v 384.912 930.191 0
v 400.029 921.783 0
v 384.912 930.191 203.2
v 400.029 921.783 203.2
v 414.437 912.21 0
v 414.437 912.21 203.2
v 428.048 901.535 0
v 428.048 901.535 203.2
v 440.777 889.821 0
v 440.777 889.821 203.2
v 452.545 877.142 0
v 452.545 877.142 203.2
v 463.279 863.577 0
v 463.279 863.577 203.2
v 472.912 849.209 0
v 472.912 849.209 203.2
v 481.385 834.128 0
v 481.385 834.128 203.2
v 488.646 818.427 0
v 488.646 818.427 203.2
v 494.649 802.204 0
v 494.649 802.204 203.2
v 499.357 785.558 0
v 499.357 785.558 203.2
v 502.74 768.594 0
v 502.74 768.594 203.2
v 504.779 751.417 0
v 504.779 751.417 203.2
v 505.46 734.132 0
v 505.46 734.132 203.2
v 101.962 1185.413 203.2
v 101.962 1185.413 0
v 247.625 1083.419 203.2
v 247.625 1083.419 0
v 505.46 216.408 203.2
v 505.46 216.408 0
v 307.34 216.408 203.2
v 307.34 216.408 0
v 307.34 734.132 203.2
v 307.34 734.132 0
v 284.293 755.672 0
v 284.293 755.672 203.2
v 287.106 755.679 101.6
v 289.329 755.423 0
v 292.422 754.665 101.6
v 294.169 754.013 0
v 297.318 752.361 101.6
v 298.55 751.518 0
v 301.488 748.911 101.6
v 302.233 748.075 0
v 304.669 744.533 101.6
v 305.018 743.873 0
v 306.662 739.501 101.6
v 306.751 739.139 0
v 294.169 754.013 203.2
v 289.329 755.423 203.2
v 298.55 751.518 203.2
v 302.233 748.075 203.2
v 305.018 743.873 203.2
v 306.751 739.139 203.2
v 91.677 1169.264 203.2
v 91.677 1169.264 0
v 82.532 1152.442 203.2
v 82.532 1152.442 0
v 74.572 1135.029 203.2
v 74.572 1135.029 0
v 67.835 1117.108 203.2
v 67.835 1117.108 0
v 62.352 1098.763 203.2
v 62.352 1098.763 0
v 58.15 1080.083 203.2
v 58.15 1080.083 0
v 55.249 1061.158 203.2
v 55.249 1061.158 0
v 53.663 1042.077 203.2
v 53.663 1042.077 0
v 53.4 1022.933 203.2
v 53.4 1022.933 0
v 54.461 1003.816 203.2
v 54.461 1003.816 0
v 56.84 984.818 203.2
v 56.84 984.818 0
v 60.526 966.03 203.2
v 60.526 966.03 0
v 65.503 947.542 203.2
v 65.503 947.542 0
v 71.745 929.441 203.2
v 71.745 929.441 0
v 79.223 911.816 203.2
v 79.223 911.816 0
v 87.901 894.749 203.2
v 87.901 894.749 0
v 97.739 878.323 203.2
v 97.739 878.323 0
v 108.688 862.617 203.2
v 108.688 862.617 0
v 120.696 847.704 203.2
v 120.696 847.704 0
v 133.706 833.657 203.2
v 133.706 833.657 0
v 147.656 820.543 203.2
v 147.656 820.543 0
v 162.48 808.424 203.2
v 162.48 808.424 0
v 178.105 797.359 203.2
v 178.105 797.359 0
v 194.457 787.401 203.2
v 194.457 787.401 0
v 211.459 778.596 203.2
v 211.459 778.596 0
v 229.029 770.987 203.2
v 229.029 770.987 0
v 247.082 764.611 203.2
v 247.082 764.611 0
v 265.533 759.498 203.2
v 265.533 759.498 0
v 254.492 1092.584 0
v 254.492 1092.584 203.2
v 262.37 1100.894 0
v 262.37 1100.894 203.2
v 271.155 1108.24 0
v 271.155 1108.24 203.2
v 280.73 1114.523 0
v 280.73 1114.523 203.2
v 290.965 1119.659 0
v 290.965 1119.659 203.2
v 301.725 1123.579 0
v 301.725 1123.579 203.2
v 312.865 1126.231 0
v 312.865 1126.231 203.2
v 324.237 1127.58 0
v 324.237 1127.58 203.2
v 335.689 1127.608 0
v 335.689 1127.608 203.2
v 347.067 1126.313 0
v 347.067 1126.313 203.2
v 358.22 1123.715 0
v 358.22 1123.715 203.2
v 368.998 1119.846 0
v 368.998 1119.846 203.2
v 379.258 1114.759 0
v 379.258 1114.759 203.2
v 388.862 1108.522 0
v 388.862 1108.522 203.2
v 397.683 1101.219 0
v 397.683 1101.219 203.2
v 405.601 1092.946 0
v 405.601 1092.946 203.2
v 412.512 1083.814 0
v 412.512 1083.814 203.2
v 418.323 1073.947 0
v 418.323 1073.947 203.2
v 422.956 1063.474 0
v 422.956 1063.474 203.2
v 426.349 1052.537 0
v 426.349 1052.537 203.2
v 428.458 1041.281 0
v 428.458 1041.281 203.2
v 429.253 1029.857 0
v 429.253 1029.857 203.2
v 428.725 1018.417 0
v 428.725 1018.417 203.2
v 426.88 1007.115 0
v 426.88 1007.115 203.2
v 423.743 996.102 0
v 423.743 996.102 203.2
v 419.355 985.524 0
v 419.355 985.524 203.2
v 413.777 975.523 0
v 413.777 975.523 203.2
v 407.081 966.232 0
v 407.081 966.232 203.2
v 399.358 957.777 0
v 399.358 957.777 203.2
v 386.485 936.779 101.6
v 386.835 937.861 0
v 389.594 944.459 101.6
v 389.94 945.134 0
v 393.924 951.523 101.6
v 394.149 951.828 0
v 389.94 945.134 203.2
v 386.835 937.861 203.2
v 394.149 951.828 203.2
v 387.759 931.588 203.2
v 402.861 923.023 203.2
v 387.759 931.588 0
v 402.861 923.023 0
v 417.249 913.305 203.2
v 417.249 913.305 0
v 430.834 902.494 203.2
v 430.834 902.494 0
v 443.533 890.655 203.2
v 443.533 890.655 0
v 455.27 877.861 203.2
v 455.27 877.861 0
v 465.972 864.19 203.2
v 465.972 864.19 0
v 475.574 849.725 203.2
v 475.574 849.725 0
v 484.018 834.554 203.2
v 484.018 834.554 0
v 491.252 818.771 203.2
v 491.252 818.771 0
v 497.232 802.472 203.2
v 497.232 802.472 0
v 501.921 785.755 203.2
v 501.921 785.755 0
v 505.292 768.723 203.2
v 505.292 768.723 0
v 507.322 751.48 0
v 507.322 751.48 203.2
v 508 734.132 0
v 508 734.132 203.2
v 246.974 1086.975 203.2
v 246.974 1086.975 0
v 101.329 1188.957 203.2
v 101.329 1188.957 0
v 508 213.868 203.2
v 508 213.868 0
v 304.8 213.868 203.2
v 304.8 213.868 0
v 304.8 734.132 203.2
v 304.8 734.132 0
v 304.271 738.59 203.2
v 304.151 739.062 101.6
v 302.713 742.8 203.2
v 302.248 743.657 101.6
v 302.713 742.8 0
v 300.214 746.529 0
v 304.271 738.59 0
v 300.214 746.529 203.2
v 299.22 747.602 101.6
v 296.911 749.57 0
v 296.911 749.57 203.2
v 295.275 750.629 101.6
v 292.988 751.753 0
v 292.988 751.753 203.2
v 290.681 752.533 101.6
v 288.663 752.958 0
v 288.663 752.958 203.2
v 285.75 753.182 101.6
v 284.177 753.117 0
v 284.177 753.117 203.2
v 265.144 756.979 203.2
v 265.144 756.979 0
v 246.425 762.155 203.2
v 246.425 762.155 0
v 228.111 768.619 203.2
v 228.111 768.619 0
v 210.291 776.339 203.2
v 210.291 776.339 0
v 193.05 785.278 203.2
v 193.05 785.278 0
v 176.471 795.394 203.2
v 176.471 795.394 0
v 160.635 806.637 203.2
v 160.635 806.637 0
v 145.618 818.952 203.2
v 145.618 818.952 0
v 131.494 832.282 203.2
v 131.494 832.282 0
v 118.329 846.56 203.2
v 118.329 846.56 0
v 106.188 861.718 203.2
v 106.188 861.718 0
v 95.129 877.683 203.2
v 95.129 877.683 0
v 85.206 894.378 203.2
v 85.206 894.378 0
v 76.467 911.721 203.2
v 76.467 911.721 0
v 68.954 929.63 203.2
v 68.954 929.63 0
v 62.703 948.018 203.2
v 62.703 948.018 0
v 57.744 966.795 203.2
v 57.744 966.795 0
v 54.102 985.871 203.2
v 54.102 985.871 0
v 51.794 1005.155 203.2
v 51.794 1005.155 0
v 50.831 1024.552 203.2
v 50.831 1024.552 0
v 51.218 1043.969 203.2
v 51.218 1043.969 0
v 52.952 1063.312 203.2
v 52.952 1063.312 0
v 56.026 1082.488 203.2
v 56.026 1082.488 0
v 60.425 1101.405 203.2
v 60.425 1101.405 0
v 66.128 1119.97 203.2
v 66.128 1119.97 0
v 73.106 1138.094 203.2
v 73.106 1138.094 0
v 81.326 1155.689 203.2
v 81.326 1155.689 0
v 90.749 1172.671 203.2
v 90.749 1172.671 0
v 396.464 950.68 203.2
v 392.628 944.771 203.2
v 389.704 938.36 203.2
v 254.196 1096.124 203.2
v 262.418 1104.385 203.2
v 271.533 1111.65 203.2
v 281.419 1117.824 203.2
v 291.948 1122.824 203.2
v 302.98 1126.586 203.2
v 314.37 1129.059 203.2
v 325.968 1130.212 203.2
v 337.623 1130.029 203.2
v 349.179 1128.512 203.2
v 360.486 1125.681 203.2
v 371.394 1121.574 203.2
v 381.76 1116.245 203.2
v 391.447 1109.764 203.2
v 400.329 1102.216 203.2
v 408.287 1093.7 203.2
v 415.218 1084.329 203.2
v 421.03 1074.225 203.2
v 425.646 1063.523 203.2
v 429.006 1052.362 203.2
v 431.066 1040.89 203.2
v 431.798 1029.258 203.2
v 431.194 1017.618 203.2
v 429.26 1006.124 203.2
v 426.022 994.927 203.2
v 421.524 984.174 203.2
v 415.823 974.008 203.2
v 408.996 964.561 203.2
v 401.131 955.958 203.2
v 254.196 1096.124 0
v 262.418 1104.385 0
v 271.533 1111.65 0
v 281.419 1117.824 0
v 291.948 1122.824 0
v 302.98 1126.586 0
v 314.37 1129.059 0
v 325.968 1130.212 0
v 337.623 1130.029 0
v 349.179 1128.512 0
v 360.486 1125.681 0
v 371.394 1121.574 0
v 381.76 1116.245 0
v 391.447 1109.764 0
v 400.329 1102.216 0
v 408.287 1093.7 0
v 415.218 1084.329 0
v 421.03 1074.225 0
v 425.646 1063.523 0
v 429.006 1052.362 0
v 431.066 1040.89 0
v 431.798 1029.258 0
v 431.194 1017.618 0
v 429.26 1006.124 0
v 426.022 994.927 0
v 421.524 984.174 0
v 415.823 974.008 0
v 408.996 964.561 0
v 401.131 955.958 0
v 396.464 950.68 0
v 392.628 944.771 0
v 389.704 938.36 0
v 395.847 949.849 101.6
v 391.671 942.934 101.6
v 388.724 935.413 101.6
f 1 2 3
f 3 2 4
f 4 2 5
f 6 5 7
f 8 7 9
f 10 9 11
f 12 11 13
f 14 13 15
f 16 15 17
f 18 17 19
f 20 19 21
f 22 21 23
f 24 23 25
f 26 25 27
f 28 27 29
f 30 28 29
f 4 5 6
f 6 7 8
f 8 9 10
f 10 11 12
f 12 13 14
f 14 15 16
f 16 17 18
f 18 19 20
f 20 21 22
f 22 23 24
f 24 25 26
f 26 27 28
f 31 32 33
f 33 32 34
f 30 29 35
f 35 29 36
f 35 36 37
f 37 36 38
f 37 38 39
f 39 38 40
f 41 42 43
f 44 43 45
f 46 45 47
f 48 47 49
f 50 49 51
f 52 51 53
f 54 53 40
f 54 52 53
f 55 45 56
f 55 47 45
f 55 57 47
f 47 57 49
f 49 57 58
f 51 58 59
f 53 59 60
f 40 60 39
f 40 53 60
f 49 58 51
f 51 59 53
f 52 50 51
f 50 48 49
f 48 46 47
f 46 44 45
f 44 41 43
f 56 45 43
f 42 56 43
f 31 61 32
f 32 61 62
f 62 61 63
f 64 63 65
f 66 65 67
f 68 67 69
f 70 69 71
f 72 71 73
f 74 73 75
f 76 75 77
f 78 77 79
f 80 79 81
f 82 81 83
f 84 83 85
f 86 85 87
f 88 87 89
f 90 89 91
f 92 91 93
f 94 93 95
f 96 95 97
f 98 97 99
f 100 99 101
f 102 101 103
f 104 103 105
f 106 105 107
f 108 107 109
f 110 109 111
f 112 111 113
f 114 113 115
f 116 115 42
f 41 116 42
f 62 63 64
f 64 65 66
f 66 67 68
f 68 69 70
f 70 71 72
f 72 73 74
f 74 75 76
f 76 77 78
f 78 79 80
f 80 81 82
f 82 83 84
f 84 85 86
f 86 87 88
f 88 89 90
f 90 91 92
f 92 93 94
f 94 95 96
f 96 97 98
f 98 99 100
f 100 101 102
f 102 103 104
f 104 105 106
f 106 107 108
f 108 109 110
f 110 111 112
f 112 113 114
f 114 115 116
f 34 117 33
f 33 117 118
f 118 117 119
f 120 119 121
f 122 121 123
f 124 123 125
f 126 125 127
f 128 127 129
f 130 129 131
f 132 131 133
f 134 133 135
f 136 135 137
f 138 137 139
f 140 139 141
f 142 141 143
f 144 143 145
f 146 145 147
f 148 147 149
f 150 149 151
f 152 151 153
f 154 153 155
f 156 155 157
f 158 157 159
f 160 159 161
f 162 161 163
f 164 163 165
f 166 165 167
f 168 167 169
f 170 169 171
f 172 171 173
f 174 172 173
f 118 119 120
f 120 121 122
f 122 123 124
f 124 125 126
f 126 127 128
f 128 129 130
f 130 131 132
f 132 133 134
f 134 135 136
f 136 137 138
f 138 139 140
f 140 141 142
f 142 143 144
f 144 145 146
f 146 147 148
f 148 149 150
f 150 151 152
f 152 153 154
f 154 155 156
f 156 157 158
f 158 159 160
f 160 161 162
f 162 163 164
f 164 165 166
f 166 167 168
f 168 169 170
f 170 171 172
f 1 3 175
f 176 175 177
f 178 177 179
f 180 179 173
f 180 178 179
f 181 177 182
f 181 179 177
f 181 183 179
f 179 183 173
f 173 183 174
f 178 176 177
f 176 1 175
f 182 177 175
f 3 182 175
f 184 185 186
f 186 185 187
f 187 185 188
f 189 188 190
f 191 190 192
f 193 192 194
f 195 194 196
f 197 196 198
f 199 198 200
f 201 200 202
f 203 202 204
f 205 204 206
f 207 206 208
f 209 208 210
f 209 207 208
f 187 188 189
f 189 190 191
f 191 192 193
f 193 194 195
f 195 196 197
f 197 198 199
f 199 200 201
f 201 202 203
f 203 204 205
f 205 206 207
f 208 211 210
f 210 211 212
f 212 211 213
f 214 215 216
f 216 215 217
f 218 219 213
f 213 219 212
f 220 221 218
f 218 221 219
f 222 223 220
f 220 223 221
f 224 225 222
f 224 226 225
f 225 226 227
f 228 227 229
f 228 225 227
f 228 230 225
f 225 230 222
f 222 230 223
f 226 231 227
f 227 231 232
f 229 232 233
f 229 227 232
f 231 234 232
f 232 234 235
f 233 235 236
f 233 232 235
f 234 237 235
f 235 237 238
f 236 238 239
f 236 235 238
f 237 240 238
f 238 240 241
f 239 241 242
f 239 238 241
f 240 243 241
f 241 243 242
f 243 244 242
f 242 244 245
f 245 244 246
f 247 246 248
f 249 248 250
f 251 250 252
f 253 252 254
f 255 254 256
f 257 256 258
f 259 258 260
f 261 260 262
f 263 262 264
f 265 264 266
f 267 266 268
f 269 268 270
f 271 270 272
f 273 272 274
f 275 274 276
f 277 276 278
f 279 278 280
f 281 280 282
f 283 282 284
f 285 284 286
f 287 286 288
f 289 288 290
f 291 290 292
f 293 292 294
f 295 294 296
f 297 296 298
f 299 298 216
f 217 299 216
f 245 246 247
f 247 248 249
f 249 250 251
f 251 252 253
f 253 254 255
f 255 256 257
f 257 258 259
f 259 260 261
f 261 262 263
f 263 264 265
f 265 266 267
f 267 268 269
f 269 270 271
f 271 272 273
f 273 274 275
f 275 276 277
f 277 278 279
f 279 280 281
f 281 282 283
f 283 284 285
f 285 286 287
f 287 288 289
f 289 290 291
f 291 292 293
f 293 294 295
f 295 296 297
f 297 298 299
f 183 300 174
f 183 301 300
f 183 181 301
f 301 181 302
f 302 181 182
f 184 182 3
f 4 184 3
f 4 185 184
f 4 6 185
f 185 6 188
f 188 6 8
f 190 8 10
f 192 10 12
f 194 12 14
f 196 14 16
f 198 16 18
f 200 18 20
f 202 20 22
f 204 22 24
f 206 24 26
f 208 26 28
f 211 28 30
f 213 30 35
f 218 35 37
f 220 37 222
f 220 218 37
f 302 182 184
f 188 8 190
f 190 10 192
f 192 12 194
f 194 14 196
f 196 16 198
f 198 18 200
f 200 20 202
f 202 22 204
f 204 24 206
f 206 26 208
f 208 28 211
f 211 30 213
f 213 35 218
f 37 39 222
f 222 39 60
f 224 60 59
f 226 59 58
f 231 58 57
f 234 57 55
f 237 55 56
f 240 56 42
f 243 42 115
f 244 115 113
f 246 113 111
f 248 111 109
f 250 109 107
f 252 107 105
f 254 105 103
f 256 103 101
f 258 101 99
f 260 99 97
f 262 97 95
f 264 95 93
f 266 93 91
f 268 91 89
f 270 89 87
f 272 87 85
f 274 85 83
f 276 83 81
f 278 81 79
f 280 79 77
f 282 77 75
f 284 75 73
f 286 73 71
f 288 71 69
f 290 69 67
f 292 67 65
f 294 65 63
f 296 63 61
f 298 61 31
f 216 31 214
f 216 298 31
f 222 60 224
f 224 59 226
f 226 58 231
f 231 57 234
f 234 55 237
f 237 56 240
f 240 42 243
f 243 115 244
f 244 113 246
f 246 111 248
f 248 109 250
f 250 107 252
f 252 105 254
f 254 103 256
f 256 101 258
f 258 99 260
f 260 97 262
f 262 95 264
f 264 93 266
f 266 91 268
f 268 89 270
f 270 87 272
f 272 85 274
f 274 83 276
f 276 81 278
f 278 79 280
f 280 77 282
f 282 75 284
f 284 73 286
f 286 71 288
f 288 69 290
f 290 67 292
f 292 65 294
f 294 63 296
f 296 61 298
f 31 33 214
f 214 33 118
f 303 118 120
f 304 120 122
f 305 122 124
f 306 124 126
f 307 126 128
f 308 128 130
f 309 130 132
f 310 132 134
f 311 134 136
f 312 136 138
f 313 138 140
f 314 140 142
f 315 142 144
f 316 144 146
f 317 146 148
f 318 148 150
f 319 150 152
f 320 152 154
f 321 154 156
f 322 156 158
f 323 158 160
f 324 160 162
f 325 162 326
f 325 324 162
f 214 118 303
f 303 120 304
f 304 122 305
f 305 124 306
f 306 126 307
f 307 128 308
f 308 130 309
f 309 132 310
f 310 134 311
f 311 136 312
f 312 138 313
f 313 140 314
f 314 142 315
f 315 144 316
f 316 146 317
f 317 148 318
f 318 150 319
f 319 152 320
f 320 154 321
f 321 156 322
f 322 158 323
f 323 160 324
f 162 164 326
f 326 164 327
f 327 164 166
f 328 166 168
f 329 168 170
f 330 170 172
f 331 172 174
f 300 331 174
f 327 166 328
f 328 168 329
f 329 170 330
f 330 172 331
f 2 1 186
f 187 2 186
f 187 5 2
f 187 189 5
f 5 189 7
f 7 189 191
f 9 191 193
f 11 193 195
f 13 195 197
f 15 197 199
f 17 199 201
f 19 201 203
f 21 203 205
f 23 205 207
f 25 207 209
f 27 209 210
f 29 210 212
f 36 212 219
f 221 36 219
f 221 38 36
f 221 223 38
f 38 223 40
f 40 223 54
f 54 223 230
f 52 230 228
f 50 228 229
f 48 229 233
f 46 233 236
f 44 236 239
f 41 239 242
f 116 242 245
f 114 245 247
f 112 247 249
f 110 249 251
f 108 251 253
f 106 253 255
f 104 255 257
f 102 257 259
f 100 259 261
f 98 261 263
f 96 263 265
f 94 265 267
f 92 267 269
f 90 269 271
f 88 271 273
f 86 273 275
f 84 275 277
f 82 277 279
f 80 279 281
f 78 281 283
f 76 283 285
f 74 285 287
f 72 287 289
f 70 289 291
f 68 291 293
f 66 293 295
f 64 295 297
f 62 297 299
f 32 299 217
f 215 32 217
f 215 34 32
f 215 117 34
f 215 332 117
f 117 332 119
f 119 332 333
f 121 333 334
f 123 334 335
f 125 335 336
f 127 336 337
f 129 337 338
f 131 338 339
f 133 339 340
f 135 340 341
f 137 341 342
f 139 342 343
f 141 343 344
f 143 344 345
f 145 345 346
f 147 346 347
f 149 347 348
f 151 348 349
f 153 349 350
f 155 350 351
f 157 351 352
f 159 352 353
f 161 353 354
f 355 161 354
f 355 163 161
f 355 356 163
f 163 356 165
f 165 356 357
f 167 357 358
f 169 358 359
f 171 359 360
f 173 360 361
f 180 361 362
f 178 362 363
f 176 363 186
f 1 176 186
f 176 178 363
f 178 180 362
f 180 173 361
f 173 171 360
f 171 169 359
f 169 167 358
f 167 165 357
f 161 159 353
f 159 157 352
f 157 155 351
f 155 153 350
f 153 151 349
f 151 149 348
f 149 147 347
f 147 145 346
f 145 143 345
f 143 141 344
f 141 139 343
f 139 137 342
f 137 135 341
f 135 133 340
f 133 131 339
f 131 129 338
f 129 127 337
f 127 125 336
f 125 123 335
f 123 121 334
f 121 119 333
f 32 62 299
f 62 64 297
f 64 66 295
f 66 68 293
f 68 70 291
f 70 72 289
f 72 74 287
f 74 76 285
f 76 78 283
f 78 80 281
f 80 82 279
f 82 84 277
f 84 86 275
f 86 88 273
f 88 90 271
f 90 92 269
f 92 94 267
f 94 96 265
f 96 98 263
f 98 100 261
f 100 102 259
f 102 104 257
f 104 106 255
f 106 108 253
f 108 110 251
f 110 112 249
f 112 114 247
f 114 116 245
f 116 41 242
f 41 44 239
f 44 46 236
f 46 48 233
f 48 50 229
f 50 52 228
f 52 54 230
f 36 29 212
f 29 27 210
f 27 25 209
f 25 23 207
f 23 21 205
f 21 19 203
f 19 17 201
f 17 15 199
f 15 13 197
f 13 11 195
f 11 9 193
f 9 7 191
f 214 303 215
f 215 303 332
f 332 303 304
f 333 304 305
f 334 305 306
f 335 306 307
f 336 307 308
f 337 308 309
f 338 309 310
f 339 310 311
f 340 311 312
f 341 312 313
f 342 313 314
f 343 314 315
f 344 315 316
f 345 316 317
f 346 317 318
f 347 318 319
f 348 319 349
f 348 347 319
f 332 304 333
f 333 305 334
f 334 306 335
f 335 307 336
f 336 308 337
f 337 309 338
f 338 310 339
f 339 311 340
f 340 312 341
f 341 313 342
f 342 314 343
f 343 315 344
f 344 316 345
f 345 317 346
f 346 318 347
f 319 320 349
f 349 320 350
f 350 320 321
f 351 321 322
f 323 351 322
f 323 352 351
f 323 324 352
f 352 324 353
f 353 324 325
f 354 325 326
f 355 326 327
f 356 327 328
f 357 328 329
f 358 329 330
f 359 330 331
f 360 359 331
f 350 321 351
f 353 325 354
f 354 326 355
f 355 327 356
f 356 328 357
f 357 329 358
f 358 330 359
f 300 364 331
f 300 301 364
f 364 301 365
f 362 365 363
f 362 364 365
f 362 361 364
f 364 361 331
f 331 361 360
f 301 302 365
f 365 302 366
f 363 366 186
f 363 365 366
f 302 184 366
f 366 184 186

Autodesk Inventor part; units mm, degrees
ref_plane "YZ Plane" through (0, 0, 0) normal (1, 0, 0) x (0, 1, 0)
ref_plane "XZ Plane" through (0, 0, 0) normal (0, 1, 0) x (-1, 0, 0)
ref_plane "XY Plane" through (0, 0, 0) normal (0, 0, 1) x (1, 0, 0)
sketch "Sketch1" plane through (0, 0, 0) normal (0, 0, 1) x (1, 0, 0)
  circle A0 centre (330.2, 1028.7) radius 101.6
  arc A1 (101.3289, 1188.9573) -> (284.1769, 753.1166) centre (330.2, 1028.7) ccw
  circle A2 centre (285.75, 734.1316) radius 19.05
  line L0 (330.2, 1028.7) -> (431.8, 1028.7) construction
  line L1 (0, 1023.3941) -> (50.8, 1023.3941)
  line L2 (50.8, 1023.3941) -> (50.8, 972.5941)
  line L3 (50.8, 972.5941) -> (0, 972.5941)
  line L4 (0, 972.5941) -> (0, 1023.3941)
  line L5 (0, 0) -> (685.8, 0) construction
  line L6 (685.8, 1498.6) -> (0, 1498.6) construction
  line L7 (0, 1498.6) -> (0, 0) construction
  line L8 (304.8, 734.1316) -> (304.8, 213.868)
  line L9 (101.3289, 1188.9573) -> (318.1431, 1498.6) construction
  line L10 (101.3289, 1188.9573) -> (685.8, 1188.9573) construction
  arc A3 (508, 734.1316) -> (260.3446, 954.9248) centre (285.75, 734.1316) ccw
  line L11 (508, 734.1316) -> (508, 213.868)
  line L12 (685.8, 1188.9573) -> (685.8, 0) construction
  line L13 (685.8, 228.9727) -> (685.8, 178.1727)
  line L14 (101.3289, 1188.9573) -> (246.9742, 1086.9754)
  line L15 (304.8, 213.868) -> (508, 213.868)
  arc A4 (401.1312, 955.9585) -> (387.7592, 931.5884) centre (434.38, 921.8609) ccw
  dimension "d0" = 203.2
  dimension "d1" = 279.4
  dimension "d3" = 50.8
  dimension "d4" = 1498.6
  dimension "d5" = 685.8
  dimension "d6" = 38.1
  dimension "d9" = 55
  dimension "d10" = 1028.7
  dimension "d14" = 213.868
  dimension "d20" = 304.8
  dimension "d21" = 177.8
extrude "Extrusion1" add sketch "Sketch1" along normal blind 203.2 contours A0 A3 | A0 A3 L11 L15 L8 A2 A1 L14 | A4 A3 A0 | A3 A0
shell "Shell1" thickness 2.54 removed faces 2 at (372.5333, 560.7104, 0) at (440.2667, 387.2892, 203.2)
properties part number "SketchProfile"
